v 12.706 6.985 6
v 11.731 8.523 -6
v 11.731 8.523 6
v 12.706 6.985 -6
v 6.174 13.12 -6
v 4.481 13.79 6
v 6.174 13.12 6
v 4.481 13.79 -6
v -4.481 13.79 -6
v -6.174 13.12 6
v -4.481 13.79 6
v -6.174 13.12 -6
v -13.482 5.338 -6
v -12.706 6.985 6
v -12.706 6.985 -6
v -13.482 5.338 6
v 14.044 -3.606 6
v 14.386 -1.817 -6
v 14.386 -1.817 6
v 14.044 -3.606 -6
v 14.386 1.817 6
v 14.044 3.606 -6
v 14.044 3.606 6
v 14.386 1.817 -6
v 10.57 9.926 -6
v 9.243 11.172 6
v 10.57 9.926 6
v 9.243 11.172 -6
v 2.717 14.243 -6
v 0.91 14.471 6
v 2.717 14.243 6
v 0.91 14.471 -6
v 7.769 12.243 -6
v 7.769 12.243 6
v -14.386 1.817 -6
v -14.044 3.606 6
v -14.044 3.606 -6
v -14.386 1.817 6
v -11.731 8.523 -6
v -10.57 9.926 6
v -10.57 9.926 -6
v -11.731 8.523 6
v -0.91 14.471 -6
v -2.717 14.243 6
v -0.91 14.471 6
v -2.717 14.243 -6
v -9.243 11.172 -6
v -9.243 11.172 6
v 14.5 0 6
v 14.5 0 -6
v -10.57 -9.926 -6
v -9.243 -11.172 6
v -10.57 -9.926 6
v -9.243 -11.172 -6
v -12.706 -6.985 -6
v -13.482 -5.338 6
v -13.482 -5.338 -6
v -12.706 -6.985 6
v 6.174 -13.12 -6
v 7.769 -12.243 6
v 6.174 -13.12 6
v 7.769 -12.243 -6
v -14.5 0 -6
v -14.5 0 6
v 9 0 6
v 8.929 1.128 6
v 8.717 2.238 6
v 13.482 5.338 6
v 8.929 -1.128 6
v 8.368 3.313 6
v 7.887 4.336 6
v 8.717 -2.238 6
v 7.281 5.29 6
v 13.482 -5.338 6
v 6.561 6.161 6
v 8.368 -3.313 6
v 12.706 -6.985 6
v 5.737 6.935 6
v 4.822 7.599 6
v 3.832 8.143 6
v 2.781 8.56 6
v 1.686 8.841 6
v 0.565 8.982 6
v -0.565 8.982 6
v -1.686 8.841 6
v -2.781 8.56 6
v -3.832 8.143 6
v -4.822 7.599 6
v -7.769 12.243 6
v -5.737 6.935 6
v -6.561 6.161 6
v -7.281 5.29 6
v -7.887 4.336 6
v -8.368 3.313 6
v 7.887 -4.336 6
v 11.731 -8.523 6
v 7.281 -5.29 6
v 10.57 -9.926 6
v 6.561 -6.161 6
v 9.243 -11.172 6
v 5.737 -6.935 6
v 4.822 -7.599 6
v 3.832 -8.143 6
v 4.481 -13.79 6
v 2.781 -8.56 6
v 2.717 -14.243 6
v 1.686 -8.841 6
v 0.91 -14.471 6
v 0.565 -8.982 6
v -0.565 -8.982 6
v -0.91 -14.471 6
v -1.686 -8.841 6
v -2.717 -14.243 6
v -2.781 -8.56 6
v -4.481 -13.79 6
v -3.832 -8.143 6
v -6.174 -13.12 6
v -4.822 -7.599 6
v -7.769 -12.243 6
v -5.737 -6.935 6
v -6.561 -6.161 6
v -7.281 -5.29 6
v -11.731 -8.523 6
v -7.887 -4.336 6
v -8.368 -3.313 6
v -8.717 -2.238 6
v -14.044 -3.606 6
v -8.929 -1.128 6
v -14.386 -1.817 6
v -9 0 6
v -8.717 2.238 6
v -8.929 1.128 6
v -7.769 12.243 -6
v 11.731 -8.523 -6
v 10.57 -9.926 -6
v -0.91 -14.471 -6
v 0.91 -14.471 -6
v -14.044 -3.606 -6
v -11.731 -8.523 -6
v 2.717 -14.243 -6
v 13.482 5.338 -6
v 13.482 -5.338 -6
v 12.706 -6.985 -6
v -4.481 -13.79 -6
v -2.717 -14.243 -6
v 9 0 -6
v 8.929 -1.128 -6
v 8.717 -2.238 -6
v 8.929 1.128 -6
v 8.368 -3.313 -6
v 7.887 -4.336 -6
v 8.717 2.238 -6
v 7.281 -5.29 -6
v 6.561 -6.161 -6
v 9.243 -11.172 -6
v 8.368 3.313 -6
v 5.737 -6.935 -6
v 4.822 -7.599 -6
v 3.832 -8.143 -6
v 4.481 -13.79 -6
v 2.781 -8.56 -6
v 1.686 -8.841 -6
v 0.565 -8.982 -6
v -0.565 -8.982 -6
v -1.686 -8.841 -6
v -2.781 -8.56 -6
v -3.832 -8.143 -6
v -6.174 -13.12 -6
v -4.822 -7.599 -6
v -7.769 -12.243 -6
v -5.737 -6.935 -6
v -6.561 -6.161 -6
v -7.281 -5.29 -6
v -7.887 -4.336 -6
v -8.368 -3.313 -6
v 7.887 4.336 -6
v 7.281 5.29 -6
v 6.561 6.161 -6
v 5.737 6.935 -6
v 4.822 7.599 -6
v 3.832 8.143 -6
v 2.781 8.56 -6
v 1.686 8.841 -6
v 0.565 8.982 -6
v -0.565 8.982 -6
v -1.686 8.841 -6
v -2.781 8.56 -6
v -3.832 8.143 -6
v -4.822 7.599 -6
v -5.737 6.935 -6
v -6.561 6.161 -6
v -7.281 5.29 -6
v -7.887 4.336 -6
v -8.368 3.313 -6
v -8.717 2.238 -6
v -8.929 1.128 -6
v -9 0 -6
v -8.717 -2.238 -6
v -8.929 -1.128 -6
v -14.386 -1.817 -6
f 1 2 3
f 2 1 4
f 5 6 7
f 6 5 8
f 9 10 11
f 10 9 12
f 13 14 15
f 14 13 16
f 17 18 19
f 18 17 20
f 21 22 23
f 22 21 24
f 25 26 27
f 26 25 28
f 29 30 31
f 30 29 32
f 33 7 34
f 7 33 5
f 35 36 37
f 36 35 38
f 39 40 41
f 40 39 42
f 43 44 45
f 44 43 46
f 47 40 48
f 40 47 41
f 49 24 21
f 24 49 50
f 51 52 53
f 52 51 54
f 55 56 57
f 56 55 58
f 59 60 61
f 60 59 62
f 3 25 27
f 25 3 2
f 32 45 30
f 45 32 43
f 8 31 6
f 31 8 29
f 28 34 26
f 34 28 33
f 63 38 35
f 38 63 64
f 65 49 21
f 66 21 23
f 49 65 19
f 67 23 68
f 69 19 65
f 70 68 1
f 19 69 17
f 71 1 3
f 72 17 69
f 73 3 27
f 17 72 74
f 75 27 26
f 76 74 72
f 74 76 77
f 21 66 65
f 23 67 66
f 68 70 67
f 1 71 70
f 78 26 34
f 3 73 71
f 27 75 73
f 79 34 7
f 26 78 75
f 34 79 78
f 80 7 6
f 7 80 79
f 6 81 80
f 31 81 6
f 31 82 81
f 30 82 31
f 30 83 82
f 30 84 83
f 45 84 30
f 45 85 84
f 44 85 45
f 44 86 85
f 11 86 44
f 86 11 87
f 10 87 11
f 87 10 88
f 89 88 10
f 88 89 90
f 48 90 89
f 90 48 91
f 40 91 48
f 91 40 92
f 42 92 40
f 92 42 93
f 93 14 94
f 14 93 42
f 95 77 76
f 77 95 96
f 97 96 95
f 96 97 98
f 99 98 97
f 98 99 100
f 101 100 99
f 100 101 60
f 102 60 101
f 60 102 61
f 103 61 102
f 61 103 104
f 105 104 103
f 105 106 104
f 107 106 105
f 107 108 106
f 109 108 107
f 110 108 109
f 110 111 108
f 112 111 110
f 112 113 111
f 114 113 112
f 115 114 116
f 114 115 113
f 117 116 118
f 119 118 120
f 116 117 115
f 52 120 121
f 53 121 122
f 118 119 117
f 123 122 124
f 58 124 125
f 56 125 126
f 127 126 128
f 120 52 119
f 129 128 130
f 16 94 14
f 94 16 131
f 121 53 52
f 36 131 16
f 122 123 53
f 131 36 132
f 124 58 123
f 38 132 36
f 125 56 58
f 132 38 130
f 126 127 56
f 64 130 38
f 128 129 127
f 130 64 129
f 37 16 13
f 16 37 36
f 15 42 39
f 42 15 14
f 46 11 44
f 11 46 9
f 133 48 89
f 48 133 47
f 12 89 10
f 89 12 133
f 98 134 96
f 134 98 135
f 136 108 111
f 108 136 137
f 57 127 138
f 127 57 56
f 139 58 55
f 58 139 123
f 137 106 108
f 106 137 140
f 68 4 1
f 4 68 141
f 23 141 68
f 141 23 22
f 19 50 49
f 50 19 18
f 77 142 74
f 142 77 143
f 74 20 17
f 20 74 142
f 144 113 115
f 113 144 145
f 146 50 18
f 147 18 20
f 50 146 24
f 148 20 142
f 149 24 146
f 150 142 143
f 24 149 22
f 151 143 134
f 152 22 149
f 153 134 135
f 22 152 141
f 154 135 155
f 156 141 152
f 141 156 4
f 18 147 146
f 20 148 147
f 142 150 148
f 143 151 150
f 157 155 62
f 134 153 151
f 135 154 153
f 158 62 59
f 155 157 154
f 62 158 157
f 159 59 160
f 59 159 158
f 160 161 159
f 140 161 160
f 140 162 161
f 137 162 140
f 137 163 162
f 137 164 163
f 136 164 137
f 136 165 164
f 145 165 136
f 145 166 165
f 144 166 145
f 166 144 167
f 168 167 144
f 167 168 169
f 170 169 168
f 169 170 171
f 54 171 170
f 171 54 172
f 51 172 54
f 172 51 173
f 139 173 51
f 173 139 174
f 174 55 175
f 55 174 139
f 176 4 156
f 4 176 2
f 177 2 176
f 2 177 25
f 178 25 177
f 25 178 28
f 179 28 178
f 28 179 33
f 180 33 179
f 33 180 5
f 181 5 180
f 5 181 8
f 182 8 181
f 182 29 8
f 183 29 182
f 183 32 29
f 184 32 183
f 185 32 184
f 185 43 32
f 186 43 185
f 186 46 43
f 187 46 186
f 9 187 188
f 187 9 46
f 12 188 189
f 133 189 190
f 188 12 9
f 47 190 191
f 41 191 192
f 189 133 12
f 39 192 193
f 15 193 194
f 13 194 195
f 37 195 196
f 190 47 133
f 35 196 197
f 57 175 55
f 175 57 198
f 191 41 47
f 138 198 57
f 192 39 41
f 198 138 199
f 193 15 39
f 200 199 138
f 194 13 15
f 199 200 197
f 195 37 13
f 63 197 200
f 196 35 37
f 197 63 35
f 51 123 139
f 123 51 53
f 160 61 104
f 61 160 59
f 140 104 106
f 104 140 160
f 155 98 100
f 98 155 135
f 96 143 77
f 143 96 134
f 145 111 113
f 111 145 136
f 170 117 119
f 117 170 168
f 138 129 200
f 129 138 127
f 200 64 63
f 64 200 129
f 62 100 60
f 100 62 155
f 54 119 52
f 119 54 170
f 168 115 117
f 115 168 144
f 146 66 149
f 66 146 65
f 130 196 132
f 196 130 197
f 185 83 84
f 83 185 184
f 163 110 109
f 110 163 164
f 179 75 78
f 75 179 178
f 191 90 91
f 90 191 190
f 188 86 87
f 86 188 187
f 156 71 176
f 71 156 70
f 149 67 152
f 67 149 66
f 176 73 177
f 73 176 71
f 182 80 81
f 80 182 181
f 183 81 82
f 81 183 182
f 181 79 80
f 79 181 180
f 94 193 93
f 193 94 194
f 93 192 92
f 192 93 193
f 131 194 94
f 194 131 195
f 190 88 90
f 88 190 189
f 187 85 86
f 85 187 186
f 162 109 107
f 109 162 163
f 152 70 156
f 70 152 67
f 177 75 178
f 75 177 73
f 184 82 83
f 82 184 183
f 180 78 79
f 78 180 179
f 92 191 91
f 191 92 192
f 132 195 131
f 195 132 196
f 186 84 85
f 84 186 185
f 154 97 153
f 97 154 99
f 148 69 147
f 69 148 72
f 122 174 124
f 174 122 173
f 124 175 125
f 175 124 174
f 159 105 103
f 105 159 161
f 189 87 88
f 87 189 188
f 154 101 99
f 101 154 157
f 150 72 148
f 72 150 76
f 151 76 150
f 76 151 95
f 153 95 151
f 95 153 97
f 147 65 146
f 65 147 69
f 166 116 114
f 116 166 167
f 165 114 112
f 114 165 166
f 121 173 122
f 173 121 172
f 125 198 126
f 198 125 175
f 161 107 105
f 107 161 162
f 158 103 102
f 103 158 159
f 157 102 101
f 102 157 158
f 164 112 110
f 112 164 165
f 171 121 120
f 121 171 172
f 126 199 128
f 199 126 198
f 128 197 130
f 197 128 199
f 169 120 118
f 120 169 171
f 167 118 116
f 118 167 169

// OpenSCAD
$fn = 50;


difference() {
	union() {
		translate(v = [0, 0, -6.0000000000]) {
			cylinder(h = 12, r = 14.5000000000);
		}
	}
	union() {
		translate(v = [0, 0, -100.0000000000]) {
			cylinder(h = 200, r = 9);
		}
	}
}
